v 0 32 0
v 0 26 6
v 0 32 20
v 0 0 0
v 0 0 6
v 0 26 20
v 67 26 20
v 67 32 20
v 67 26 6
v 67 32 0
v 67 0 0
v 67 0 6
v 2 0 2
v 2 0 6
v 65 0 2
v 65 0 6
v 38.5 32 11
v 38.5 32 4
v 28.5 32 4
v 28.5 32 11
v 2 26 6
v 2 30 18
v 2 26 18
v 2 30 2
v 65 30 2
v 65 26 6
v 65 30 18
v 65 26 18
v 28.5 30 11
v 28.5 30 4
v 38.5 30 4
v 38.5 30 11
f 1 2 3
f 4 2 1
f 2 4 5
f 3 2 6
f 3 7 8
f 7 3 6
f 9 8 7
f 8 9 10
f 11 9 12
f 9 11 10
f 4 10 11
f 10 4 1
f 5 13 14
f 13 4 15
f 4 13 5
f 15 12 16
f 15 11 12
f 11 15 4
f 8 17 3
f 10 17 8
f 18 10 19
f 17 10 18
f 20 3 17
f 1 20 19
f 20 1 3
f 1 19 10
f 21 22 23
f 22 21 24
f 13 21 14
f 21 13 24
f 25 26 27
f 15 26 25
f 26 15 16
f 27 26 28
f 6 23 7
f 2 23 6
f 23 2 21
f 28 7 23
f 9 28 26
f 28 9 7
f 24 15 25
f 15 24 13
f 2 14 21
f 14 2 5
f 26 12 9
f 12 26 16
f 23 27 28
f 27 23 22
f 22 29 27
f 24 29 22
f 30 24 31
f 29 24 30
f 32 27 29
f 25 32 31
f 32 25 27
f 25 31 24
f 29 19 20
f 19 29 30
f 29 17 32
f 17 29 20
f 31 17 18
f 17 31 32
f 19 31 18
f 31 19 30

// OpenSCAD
ol=67;
ow=32;
oh=17.5+2.5;
wall=2;
lip=4;

module board() {
    translate([2.5,4,0]) cube([62.25,25.5,15.5]);
}

module holder() {
    difference() {
        cube([ol,ow,oh]);
        translate([2,-lip-wall,wall]) cube([ol-4,ow,oh-wall+1]);
        translate([-0.5,-lip-wall,wall+4]) cube([ol+1,ow,oh-wall+1]);        
        translate([wall,ow-lip-5,wall]) cube([ol-2*wall,7,oh-2*wall]);
        translate([ol-40+1.5,0,wall+5-3]) cube([10,40,7]);
    }
};

holder();
//board();
